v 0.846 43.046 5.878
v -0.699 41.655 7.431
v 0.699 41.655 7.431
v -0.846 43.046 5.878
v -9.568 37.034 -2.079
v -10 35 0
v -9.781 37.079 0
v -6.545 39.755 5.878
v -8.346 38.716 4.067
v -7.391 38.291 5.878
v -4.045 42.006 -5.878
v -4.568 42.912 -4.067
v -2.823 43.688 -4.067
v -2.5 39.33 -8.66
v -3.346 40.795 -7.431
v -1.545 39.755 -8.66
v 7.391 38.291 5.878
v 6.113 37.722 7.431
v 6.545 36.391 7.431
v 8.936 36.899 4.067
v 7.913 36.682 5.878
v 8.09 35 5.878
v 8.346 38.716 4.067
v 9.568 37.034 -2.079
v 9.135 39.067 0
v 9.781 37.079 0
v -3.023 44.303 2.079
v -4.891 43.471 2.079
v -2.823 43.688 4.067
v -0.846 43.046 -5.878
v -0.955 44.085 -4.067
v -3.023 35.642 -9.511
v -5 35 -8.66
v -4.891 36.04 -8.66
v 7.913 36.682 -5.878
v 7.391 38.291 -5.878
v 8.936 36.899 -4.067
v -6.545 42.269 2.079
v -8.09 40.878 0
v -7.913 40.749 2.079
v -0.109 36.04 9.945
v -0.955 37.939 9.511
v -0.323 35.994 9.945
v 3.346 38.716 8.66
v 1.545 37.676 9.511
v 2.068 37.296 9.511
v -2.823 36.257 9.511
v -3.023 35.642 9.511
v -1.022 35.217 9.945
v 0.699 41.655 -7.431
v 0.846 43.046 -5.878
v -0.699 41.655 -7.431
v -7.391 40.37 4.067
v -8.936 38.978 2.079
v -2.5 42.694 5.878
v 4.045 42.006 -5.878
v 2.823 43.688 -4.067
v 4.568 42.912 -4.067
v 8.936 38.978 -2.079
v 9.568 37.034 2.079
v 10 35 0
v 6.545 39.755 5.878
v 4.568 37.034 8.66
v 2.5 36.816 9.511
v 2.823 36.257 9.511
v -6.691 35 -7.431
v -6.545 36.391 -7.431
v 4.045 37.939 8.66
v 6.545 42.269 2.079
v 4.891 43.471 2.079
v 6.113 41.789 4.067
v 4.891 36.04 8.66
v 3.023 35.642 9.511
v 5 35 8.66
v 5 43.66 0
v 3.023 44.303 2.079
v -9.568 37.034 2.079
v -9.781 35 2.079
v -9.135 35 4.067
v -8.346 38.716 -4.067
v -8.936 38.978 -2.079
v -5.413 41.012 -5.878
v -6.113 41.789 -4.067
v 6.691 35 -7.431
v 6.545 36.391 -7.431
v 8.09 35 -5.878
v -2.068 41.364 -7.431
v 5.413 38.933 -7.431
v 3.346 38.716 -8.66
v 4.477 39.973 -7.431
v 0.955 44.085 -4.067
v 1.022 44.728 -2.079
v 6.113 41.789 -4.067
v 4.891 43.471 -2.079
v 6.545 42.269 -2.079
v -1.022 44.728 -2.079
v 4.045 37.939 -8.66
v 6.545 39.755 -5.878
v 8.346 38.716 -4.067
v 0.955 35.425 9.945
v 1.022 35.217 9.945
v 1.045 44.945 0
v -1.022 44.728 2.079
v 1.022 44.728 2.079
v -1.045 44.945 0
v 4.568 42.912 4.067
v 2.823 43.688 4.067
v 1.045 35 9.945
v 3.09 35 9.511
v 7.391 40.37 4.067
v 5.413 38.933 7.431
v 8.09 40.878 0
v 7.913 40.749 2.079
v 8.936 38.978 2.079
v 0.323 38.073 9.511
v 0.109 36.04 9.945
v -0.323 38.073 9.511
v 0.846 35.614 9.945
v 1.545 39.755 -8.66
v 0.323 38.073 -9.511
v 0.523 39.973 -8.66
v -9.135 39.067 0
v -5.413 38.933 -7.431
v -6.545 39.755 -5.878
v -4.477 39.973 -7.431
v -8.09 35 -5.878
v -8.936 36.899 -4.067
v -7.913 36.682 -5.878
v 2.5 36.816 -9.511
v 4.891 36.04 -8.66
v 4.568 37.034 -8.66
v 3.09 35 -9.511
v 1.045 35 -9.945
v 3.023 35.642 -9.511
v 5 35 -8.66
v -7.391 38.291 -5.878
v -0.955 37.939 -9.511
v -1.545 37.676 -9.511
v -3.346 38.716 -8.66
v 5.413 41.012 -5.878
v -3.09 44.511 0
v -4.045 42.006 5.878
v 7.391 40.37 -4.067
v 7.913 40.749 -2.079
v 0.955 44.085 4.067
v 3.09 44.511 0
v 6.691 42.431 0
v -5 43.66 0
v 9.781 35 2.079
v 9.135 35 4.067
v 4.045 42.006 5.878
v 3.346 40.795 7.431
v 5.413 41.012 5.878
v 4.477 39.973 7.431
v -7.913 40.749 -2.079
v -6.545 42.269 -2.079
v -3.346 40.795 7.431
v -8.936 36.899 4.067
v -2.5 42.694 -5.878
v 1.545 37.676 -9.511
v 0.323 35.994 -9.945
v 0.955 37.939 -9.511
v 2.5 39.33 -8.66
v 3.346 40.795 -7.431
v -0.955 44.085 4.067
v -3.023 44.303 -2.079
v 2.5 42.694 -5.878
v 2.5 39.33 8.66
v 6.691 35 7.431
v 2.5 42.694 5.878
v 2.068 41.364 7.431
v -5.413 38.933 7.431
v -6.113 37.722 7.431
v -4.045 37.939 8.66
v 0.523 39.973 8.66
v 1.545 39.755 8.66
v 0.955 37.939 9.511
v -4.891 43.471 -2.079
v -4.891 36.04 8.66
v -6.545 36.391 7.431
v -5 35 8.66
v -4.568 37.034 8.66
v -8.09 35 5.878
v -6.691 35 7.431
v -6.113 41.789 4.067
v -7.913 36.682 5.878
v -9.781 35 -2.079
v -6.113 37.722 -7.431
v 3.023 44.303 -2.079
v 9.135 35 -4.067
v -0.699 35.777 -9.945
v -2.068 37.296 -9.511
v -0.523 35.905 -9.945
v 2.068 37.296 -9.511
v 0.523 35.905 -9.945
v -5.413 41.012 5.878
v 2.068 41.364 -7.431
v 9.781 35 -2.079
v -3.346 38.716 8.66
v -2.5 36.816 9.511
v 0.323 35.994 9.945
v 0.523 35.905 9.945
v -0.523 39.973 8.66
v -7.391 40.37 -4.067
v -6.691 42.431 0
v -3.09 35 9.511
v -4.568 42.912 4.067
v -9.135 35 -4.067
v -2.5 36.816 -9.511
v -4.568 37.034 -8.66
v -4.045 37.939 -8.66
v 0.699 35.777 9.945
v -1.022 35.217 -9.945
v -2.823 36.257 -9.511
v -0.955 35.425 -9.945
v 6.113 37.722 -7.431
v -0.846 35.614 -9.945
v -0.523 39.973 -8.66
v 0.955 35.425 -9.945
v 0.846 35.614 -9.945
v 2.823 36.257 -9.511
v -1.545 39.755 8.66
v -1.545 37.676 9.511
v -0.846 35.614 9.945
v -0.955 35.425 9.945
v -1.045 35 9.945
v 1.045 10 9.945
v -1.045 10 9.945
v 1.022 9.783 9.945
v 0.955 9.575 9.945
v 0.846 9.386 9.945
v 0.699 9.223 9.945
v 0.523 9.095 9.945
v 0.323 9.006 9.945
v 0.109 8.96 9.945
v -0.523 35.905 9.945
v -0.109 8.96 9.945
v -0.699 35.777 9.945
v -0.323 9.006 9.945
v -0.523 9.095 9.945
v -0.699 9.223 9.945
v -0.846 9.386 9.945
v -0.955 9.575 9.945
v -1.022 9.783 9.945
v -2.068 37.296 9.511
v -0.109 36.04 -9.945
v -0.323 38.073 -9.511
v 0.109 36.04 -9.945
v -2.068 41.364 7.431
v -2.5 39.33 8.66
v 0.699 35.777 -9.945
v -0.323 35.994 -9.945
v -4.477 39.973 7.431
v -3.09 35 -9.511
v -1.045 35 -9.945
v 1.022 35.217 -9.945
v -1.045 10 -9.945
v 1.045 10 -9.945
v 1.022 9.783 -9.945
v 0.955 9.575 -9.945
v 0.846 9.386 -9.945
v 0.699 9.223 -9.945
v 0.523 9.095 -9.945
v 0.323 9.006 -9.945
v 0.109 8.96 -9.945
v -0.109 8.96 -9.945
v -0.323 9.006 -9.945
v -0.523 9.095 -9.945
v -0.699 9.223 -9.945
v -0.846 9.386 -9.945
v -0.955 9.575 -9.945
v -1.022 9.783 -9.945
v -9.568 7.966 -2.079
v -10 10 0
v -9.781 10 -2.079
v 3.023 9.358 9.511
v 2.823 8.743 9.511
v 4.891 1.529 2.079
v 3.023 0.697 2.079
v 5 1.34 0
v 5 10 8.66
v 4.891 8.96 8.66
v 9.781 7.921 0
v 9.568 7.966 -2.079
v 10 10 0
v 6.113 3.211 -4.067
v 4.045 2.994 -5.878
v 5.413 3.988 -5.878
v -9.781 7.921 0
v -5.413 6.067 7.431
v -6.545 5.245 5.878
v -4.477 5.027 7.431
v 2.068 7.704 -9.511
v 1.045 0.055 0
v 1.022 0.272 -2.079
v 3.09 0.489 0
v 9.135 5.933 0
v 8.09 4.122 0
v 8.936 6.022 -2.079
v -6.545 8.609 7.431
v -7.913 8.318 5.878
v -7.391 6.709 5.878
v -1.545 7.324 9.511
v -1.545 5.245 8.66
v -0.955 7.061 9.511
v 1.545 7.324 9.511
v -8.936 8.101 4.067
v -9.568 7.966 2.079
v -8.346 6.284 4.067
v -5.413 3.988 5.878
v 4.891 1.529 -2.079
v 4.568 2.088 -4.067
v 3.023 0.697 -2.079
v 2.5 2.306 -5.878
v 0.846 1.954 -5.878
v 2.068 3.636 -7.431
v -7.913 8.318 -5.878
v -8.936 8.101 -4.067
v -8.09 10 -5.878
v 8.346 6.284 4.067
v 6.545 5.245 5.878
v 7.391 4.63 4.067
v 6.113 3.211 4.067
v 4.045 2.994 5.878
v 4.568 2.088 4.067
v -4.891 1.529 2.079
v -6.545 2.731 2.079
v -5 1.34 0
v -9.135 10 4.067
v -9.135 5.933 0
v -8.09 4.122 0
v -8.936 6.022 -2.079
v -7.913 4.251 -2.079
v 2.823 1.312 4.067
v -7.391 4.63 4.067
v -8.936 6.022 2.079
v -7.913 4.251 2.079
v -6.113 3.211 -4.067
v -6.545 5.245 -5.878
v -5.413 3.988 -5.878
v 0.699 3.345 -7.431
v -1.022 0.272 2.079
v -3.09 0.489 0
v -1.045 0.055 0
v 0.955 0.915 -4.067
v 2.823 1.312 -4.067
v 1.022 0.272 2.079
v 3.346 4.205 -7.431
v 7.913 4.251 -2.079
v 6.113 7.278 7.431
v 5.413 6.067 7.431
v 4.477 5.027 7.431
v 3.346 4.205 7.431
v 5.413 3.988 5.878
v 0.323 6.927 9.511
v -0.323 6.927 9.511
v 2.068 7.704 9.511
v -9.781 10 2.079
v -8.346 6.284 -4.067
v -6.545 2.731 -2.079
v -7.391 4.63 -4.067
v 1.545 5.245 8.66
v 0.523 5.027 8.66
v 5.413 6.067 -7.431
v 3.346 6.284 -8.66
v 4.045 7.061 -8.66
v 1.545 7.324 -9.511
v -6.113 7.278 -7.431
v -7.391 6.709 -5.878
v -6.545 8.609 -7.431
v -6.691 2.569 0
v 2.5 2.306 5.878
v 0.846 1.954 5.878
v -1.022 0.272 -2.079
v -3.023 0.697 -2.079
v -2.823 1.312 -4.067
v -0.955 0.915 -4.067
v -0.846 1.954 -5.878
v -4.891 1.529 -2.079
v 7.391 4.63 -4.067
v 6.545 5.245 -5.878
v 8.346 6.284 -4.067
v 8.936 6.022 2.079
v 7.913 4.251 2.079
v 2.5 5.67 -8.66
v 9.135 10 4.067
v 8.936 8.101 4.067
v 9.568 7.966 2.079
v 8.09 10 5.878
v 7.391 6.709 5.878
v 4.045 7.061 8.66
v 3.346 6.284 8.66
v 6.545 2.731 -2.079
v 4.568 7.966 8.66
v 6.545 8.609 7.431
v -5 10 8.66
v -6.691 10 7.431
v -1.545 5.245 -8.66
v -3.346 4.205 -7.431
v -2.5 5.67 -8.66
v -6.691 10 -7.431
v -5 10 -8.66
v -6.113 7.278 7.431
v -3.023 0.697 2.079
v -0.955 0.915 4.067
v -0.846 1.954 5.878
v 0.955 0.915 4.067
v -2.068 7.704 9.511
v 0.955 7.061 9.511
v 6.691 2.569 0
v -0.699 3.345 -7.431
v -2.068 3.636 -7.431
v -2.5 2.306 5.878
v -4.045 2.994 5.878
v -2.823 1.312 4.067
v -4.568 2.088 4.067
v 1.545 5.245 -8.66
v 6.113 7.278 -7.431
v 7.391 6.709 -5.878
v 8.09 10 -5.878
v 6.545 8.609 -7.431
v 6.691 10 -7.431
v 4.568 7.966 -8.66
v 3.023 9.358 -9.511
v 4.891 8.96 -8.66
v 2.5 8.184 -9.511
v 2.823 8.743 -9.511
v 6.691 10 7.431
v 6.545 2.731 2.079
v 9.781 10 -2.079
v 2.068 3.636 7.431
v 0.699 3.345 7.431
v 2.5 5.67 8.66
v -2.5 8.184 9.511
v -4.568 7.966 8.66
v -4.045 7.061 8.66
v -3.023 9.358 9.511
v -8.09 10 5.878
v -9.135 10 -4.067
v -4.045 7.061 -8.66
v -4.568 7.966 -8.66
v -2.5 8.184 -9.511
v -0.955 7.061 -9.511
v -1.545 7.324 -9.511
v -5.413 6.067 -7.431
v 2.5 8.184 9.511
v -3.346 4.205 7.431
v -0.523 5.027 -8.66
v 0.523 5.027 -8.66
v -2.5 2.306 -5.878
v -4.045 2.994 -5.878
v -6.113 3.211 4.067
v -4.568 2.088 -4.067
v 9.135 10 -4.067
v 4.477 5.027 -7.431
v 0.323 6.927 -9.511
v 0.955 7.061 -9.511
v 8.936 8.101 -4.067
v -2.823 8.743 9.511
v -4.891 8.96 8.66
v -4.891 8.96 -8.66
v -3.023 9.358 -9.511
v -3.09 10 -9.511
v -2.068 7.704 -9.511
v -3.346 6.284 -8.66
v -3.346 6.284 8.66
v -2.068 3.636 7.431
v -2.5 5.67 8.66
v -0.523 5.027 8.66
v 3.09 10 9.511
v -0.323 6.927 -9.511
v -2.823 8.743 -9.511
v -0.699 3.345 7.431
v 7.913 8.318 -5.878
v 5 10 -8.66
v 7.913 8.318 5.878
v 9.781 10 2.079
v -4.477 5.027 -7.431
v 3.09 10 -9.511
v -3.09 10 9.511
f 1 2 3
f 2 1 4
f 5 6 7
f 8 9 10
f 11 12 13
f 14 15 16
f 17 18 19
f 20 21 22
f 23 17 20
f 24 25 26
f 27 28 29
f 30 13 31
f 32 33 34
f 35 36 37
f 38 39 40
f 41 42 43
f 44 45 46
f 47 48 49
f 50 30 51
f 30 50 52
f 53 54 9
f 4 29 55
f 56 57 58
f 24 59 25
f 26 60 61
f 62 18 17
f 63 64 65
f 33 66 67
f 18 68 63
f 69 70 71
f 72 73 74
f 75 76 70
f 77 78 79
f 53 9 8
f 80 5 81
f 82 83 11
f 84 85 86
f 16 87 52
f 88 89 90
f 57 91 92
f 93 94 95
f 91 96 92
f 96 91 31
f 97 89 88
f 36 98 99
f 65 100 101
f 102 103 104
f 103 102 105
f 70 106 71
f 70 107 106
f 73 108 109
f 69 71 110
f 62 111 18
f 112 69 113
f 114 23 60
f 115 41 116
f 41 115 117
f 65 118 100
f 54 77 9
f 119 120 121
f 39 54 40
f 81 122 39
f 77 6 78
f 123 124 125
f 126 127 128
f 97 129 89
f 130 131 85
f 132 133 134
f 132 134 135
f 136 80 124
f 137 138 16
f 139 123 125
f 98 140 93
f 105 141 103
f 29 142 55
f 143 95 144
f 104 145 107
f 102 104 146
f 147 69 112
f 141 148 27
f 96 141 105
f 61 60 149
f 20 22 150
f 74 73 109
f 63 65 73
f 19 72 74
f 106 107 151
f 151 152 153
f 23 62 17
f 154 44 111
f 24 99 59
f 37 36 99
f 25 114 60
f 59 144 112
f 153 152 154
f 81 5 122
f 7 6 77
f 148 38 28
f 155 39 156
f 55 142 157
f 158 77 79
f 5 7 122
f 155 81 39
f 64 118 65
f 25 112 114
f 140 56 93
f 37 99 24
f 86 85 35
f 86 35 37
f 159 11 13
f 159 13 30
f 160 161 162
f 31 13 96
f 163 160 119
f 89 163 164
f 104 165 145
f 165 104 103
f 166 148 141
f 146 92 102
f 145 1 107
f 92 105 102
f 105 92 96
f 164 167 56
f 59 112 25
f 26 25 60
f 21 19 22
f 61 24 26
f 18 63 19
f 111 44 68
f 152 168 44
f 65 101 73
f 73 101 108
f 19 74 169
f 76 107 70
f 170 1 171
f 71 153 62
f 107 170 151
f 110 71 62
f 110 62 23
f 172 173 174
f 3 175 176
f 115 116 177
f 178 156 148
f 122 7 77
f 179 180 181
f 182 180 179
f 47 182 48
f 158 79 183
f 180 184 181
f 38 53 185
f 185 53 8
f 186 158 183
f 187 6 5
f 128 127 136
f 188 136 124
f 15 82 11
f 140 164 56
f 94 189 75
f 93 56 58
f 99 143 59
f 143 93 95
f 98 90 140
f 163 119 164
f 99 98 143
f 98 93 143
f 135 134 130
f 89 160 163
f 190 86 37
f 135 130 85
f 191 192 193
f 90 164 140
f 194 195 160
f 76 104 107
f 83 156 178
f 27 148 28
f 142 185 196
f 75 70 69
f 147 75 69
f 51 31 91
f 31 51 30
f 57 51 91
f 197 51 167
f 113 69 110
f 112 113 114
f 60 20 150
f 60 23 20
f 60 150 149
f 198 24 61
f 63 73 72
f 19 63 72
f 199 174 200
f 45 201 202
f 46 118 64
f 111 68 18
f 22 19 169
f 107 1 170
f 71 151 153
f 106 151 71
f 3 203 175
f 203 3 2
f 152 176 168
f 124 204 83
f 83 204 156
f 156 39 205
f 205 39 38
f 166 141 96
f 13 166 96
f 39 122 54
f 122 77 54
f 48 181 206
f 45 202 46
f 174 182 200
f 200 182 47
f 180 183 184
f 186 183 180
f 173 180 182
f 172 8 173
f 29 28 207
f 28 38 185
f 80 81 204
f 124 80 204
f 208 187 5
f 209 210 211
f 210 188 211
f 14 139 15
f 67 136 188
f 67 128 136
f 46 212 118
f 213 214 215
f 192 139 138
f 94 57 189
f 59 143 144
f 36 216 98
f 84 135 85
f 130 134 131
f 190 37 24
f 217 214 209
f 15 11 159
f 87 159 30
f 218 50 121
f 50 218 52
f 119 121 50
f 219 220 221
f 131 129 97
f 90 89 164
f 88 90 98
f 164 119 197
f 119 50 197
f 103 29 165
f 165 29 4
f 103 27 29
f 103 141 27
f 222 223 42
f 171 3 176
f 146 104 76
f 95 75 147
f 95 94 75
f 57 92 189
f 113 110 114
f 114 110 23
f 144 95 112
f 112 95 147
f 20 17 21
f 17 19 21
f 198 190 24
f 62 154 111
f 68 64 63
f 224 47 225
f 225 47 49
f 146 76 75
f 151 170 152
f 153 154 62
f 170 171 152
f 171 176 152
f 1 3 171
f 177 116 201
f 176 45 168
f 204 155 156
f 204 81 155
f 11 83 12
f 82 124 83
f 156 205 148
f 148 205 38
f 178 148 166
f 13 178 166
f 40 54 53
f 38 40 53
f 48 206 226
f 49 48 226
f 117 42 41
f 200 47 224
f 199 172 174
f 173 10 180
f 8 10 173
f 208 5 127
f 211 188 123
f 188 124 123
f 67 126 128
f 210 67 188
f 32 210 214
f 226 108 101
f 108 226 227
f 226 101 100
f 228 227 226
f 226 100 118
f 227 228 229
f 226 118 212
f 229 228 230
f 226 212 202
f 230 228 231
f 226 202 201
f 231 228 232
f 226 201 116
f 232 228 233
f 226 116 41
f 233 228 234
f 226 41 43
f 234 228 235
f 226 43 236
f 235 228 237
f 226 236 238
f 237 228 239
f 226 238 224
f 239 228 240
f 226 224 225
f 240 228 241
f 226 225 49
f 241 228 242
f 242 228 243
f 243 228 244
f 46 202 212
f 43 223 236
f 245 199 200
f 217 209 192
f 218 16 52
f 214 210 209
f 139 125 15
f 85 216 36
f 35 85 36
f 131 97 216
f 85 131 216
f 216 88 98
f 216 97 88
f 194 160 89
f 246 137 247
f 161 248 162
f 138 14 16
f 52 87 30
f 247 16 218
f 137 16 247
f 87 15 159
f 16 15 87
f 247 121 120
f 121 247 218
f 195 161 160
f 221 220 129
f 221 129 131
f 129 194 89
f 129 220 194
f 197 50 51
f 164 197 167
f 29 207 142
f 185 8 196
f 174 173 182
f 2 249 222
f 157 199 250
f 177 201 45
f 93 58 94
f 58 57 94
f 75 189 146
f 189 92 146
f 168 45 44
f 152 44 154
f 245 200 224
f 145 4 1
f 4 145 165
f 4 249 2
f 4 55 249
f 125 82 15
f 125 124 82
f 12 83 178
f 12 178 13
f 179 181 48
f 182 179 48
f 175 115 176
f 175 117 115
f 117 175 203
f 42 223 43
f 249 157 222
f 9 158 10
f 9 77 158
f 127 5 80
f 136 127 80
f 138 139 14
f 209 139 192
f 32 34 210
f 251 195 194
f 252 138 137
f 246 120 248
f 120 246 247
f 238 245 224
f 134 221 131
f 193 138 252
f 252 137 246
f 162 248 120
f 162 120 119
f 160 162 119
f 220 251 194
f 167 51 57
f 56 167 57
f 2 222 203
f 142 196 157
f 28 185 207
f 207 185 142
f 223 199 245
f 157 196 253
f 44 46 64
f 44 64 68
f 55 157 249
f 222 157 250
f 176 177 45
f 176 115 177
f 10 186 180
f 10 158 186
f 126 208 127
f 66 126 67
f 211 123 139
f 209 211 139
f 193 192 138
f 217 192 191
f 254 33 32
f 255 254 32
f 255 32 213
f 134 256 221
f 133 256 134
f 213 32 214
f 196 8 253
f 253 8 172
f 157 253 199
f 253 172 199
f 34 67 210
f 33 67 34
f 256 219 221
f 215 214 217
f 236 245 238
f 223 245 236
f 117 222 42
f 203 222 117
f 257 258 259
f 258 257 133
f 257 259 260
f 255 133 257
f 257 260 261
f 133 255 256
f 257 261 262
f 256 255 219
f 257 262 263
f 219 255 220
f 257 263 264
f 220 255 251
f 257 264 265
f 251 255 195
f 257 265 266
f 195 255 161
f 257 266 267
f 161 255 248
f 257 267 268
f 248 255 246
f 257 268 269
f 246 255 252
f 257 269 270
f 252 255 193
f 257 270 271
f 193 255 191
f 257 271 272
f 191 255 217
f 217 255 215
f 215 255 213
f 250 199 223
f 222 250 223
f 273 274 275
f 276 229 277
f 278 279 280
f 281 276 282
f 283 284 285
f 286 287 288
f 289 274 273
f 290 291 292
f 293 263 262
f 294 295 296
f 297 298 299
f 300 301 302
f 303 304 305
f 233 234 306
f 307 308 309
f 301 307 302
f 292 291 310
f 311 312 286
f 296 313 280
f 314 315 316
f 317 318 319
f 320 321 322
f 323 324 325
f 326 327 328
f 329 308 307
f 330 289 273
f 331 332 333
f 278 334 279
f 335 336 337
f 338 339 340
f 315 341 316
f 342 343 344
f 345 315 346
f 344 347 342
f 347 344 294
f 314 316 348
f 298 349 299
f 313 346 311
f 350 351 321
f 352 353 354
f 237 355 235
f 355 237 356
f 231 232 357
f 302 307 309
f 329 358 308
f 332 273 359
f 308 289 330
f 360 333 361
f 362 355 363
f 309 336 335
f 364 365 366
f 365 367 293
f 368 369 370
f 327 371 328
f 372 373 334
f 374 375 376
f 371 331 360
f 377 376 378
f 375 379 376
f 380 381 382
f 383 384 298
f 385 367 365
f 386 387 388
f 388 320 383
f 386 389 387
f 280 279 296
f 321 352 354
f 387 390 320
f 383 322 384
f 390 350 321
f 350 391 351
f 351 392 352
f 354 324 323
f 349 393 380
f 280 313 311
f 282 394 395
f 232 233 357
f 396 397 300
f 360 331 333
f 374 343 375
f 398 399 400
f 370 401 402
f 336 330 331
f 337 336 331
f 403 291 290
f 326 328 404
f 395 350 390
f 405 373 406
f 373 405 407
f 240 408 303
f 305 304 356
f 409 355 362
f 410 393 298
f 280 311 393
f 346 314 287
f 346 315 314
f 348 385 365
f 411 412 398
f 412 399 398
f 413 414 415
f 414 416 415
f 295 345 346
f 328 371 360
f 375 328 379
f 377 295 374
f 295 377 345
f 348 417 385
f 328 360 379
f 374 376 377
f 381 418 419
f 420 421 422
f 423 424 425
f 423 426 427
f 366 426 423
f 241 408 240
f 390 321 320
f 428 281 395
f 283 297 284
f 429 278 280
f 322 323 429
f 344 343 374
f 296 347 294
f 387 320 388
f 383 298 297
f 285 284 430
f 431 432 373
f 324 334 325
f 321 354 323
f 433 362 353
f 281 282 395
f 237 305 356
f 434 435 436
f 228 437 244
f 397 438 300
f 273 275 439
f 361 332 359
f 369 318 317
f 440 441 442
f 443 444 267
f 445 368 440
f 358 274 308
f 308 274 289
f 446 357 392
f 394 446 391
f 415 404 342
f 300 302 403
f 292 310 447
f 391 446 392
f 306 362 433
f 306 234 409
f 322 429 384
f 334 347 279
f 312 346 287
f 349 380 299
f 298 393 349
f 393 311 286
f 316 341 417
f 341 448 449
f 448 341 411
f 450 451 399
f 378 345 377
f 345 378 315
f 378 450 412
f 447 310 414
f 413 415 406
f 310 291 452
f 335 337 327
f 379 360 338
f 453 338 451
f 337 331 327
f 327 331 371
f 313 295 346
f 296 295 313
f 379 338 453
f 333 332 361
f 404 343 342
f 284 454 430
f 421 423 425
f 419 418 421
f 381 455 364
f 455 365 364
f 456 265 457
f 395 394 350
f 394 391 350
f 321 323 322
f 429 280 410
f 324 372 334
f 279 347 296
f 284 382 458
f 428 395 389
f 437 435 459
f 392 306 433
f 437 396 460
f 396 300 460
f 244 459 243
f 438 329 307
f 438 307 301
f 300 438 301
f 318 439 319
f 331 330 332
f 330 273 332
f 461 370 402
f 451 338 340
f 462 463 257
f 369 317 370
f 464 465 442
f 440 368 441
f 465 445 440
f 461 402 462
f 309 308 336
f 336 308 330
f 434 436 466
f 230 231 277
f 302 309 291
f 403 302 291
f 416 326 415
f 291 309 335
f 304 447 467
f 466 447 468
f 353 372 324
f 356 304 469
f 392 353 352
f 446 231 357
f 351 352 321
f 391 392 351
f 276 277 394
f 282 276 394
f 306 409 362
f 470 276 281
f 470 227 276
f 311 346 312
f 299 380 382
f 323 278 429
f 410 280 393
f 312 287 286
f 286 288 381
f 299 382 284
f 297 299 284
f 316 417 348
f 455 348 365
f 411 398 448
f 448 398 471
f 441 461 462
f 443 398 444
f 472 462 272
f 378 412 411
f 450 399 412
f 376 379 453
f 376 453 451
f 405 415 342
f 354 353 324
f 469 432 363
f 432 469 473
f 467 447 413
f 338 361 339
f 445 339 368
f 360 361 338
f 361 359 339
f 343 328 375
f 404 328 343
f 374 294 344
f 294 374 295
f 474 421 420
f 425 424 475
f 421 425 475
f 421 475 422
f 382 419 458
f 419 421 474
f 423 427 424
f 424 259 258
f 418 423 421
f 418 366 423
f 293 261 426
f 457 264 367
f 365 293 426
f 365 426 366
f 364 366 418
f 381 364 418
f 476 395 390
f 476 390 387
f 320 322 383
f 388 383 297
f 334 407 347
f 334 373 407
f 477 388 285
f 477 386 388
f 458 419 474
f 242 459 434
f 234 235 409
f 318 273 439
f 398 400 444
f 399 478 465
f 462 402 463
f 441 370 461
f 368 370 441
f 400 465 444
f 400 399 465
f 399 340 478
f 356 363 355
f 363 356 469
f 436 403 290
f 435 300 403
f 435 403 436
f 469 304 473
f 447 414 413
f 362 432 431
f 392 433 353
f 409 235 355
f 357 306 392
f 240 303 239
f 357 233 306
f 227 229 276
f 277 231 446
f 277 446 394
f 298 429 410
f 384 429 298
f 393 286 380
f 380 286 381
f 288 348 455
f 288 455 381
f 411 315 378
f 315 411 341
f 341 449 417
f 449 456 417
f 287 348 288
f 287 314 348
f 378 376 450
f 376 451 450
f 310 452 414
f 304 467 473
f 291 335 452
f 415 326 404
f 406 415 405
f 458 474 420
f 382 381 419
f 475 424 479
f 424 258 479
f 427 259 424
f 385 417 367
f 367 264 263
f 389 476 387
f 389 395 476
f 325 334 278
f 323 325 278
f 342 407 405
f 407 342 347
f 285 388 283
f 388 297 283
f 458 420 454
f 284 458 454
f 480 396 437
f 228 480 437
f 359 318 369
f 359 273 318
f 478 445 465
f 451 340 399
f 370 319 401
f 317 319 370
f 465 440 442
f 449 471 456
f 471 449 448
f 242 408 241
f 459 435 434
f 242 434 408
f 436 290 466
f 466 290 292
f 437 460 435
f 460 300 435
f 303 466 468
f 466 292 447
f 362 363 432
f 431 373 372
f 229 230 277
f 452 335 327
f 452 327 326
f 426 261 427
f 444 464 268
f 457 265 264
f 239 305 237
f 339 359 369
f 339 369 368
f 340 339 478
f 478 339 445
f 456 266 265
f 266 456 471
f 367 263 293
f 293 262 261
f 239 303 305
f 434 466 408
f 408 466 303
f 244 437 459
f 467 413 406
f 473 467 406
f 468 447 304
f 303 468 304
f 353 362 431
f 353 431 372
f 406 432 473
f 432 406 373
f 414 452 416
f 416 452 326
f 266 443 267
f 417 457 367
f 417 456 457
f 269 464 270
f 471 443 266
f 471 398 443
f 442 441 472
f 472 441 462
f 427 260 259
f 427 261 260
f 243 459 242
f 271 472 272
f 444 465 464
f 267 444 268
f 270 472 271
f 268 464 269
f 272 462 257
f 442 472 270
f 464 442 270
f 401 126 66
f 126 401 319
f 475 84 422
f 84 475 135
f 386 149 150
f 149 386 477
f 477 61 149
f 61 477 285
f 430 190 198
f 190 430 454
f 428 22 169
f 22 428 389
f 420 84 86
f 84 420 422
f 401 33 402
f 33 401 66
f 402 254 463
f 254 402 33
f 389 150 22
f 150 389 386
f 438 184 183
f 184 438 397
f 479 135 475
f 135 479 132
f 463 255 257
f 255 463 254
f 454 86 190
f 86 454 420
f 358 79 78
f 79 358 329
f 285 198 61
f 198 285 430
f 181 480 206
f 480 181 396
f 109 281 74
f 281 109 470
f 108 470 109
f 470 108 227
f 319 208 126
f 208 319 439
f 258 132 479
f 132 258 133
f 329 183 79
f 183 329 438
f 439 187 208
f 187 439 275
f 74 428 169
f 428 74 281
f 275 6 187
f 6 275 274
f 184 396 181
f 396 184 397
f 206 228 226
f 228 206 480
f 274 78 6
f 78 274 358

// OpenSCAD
union(){
    difference(){
        color("Green"){
            translate(v=[0, 35, 0]){
                sphere(r=10);
            };
        };
        translate(v=[-10, 10, -10]){
            cube(size=[20, 25, 20]);
        };
    };
    difference(){
        color("Green"){
            translate(v=[0, 10, 0]){
                sphere(r=10);
            };
        };
        translate(v=[-10, 10, -10]){
            cube(size=[20, 25, 20]);
        };
    };
    rotate(a=[90, 0, 0]){
        translate(v=[0, 0, -35]){
            color("White"){
                cylinder(h=25, r=10, r1=10);
            };
        };
    };
};
